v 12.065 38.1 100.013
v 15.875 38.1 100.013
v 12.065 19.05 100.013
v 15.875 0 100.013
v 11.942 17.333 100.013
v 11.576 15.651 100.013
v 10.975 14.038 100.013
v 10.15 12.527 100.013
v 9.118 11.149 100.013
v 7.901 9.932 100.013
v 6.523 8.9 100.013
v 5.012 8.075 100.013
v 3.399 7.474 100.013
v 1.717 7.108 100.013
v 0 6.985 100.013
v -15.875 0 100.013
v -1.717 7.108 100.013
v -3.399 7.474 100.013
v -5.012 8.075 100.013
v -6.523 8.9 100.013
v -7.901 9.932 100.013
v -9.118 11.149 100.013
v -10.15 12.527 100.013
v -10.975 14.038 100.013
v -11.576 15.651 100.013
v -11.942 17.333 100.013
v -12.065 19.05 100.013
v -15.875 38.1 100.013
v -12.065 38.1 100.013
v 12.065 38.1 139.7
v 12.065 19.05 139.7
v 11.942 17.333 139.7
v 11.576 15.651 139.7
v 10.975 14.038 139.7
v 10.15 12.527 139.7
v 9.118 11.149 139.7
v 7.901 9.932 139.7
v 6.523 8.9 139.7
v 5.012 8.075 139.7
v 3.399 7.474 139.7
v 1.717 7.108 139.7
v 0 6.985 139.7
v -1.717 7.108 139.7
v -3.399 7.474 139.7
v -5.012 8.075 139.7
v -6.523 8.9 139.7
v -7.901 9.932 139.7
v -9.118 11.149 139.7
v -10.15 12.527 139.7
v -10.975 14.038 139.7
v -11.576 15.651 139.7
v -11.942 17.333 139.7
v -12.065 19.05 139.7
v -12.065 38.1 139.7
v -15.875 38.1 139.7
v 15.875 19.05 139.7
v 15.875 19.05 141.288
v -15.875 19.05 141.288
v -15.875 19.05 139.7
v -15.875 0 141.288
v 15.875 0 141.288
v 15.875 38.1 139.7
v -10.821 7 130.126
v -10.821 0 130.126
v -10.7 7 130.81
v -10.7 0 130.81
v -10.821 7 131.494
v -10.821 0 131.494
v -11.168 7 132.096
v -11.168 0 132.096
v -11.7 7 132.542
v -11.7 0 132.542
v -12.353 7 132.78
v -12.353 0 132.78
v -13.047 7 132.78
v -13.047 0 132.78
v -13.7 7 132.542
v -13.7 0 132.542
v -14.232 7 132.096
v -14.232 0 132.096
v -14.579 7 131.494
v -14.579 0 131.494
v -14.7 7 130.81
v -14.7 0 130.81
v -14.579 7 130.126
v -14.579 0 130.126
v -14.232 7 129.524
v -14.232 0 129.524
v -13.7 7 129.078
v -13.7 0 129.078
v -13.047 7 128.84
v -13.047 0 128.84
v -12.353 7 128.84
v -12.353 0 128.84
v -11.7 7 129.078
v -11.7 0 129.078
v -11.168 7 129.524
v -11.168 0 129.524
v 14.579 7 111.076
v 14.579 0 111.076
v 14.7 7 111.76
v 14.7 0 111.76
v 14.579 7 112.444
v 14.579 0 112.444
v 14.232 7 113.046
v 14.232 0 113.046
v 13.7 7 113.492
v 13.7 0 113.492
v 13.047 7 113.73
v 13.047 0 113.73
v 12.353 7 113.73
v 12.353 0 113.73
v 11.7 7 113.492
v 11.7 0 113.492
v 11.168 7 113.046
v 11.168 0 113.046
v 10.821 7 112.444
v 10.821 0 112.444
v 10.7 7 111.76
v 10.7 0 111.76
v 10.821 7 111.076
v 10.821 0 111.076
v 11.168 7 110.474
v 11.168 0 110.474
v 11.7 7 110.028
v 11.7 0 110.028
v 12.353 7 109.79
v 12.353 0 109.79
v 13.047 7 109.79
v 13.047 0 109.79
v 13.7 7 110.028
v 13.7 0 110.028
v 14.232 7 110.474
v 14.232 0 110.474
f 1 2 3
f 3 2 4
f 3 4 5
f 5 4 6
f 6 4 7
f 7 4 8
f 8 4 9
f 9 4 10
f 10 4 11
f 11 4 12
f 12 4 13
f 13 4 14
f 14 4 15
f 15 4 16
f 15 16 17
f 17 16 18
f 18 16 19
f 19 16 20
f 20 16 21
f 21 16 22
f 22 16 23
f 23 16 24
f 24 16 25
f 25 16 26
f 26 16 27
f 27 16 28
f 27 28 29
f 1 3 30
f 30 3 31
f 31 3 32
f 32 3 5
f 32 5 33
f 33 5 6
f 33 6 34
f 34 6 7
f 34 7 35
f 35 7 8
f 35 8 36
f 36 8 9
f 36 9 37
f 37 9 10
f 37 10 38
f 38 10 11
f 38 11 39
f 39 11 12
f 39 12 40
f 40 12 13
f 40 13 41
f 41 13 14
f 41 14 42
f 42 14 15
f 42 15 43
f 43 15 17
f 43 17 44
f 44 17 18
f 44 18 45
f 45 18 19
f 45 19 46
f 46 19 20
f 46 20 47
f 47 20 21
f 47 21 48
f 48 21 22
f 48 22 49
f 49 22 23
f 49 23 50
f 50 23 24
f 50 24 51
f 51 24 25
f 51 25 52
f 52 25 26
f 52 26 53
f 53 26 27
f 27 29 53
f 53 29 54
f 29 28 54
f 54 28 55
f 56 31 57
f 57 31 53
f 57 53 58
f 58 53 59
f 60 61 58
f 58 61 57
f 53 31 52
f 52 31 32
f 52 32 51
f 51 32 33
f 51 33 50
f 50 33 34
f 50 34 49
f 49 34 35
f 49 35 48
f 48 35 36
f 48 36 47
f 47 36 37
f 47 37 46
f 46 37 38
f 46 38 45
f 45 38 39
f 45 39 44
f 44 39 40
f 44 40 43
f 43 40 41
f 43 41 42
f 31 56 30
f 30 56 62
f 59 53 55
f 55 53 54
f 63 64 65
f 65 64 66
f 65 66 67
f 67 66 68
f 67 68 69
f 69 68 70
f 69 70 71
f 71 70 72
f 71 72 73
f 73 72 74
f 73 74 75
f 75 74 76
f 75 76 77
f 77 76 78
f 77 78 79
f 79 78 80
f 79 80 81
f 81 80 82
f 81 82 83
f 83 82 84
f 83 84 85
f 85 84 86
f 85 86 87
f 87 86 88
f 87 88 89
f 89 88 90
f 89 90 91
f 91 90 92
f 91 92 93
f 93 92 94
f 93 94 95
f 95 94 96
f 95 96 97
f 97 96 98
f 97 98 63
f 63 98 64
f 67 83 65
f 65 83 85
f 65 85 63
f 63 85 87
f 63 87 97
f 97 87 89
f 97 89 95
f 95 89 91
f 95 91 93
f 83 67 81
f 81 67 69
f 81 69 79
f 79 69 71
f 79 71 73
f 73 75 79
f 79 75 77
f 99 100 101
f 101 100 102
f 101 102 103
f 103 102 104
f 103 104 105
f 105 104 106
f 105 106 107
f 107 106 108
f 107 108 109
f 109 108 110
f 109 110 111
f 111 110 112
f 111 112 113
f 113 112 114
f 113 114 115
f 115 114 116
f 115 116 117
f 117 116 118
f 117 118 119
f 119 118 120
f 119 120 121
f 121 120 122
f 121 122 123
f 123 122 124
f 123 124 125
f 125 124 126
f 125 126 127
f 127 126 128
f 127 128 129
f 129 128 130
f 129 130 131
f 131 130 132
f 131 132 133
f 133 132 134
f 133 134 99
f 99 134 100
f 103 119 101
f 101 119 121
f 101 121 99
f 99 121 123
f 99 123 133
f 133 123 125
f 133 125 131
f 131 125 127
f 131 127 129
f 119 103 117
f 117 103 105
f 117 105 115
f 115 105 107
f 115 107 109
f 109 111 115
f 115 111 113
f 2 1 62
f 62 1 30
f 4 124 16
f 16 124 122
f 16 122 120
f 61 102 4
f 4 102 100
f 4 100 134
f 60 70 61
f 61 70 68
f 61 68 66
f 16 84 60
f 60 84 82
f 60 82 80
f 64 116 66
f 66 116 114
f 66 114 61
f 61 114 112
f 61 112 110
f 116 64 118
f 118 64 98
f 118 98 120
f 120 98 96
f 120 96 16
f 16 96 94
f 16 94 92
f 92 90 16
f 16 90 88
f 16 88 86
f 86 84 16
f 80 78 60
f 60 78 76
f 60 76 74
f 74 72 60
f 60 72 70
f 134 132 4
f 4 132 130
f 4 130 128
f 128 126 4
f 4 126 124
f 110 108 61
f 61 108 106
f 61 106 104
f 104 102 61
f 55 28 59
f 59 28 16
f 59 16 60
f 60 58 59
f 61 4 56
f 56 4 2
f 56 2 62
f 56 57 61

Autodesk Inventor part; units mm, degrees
ref_plane "YZ Plane" through (0, 0, 0) normal (1, 0, 0) x (0, 1, 0)
ref_plane "XZ Plane" through (0, 0, 0) normal (0, 1, 0) x (-1, 0, 0)
ref_plane "XY Plane" through (0, 0, 0) normal (0, 0, 1) x (1, 0, 0)
sketch "Sketch1" plane through (0, 0, 0) normal (0, 0, 1) x (1, 0, 0)
  line L0 (-15.875, 0) -> (15.875, 0)
  line L1 (15.875, 0) -> (15.875, 38.1)
  line L2 (15.875, 38.1) -> (-15.875, 38.1)
  line L3 (-15.875, 38.1) -> (-15.875, 0)
  point P0 (0, 0)
  dimension "d2" = 31.75
  dimension "d3" = 38.1
  dimension "d4" = 15.875
  dimension "d5" = 0
extrude "Extrusion1" add sketch "Sketch1" along normal blind 139.7
sketch "Sketch2" plane through (0, 0, 139.7) normal (0, 0, 1) x (1, 0, 0)
  arc A0 (-12.065, 19.05) -> (12.065, 19.05) centre (0, 19.05) ccw
  line L0 (-15.875, 0) -> (15.875, 0) projected
  line L1 (12.065, 19.05) -> (12.065, 38.1)
  line L2 (15.875, 38.1) -> (-15.875, 38.1) projected
  line L3 (-12.065, 19.05) -> (-12.065, 38.1)
  point P0 (0, 0)
  dimension "d8" = 19.05
  dimension "d9" = 24.13
extrude "Extrusion2" cut sketch "Sketch2" against normal through all
sketch "Sketch3" plane through (-15.875, 0, 0) normal (0, -1, 0) x (1, 0, 0)
  circle A0 centre (28.575, 8.89) radius 2
  circle A1 centre (3.175, 130.81) radius 2
  line L0 (15.875, 0) -> (15.875, 139.7) construction
  line L1 (0, 139.7) -> (31.75, 139.7) construction
  line L2 (0, 0) -> (31.75, 0) construction
  line L3 (31.75, 139.7) -> (0, 139.7) construction
  circle A2 centre (28.575, 111.76) radius 2
  line L4 (31.75, 0) -> (31.75, 139.7) projected
  dimension "d12" = 4
  dimension "d13" = 4
  dimension "d14" = 12.7
  dimension "d15" = 8.89
  dimension "d16" = 12.7
  dimension "d17" = 8.89
  dimension "d28" = 4
  dimension "d30" = 27.94
  dimension "d32" = 12.7
extrude "Heat Set Inserts" cut sketch "Sketch3" against normal blind 7
sketch "Sketch4" plane through (0, 0, 139.7) normal (0, 0, 1) x (1, 0, 0)
  line L0 (-15.875, 0) -> (15.875, 0) projected
  line L1 (15.875, 0) -> (15.875, 38.1) projected
  line L2 (-15.875, 0) -> (15.875, 0)
  line L3 (15.875, 0) -> (15.875, 19.05)
  line L4 (15.875, 19.05) -> (-15.875, 19.05)
  line L5 (-15.875, 19.05) -> (-15.875, 0)
  point P0 (0, 0)
  dimension "d20" = 19.05
extrude "Back Wall" add sketch "Sketch4" along normal blind 1.5875
sketch "Sketch5" plane through (0, 0, 0) normal (0, 0, -1) x (-1, 0, 0)
  line L0 (15.875, 0) -> (-15.875, 0) projected
  line L1 (15.875, 19.05) -> (15.875, 0) projected
  line L2 (-15.875, 0) -> (15.875, 0)
  line L3 (15.875, 0) -> (15.875, 10.16)
  line L4 (15.875, 10.16) -> (-15.875, 10.16)
  line L5 (-15.875, 10.16) -> (-15.875, 0)
  point P0 (0, 0)
  dimension "d23" = 10.16
extrude "Extrusion5" add sketch "Sketch5" along normal blind 1.5875
sketch "Sketch6" plane through (0, 0, -1.5875) normal (0, 0, -1) x (-1, 0, 0)
  line L0 (15.875, 0) -> (-15.875, 0) projected
  line L1 (-15.875, 38.1) -> (15.875, 38.1)
  line L2 (15.875, 38.1) -> (15.875, 0)
  line L3 (15.875, 0) -> (-15.875, 0)
  line L4 (-15.875, 0) -> (-15.875, 38.1)
  point P0 (0, 0)
extrude "Extrusion6" cut sketch "Sketch6" against normal blind 101.6
equation "\"d4\" = 0.5 * d2"
equation "\"d12\" = m3_heat_set_insert"
equation "\"d13\" = m3_heat_set_insert"
equation "\"d28\" = d29"
equation "\"d32\" = d16"
equation "\"d18\" = m3_heat_set_depth"
equation "\"m3_heat_set_insert\" = 4"
equation "\"m3_clearance\" = 3.4"
equation "\"m3_heat_set_depth\" = 7"
equation "\"robot_diameter\" = 354"
equation "\"hardboard_thickness\" = 5"
equation "\"d29\" = 4"
properties part number "NiMH_Holder_Back"
